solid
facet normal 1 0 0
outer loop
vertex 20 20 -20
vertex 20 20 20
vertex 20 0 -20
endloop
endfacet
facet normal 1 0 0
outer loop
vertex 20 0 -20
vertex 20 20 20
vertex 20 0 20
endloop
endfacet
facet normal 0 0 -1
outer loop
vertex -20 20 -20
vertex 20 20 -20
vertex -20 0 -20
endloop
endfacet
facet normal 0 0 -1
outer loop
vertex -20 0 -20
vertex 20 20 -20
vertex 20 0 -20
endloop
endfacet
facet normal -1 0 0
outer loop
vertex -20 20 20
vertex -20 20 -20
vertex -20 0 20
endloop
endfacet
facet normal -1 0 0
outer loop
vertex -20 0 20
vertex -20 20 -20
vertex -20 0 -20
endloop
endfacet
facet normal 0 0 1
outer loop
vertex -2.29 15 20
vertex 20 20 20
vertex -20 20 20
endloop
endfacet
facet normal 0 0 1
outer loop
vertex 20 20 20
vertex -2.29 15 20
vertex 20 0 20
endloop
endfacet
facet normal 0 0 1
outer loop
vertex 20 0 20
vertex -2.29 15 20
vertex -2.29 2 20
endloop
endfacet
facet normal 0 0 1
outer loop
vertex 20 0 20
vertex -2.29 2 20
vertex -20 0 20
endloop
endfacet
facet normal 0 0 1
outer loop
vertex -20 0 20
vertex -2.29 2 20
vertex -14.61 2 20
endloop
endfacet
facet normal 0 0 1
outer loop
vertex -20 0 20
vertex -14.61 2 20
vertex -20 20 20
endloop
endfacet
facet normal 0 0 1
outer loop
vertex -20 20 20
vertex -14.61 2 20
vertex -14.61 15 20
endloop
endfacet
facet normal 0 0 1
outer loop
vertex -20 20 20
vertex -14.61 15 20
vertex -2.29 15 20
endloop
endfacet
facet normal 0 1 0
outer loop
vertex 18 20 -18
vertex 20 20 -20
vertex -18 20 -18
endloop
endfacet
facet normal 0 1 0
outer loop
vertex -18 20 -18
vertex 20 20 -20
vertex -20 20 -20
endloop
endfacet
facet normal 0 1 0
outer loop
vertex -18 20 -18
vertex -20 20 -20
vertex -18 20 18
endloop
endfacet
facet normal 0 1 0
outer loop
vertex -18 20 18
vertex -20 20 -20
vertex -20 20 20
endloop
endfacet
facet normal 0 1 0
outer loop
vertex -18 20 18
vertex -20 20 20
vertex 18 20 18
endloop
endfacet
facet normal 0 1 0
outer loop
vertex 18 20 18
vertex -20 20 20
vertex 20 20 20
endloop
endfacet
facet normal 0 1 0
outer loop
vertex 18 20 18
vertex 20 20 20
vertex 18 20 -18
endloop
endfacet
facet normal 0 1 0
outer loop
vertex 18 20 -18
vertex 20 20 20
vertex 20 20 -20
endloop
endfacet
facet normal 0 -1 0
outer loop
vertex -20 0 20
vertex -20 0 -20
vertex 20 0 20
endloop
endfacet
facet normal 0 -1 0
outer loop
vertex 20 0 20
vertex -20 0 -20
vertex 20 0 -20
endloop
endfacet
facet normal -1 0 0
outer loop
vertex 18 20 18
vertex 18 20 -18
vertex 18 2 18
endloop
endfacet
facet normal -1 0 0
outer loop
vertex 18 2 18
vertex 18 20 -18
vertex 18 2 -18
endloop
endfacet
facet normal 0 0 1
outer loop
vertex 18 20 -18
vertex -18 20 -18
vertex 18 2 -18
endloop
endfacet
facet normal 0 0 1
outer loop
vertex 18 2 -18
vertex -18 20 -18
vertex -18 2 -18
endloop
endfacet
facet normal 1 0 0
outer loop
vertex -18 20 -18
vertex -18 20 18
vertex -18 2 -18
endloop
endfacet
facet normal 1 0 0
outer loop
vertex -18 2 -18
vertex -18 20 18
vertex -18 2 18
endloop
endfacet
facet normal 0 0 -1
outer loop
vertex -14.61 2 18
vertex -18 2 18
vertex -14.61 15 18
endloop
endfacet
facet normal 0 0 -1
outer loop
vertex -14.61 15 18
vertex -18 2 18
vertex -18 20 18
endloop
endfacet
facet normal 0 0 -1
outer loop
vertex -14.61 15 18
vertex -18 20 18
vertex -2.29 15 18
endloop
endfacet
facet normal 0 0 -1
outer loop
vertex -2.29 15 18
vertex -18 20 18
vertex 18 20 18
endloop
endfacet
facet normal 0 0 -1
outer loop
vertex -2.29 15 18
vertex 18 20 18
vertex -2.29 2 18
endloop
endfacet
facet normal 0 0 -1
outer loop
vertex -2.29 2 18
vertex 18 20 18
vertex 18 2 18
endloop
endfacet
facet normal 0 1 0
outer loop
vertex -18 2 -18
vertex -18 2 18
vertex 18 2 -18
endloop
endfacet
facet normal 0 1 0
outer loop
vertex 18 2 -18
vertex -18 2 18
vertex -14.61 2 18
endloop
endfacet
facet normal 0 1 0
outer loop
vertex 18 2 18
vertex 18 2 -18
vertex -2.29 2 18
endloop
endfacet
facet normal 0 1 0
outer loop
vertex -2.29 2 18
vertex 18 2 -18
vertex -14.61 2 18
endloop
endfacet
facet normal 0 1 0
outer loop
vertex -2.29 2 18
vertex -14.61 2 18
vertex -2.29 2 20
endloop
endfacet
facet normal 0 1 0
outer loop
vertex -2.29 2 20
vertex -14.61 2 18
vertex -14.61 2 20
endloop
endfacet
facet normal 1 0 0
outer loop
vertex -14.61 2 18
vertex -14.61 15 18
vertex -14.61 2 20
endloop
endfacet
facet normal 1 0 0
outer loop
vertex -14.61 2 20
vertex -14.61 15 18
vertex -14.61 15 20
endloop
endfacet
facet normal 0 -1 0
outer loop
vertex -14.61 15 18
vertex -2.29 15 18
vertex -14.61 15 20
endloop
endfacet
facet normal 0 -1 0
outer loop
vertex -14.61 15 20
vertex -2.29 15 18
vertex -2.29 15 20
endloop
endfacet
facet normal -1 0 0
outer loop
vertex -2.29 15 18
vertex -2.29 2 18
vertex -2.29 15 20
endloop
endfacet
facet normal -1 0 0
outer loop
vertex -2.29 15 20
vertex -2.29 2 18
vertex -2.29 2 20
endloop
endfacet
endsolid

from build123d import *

# Parameters (mm, degrees)
SKETCH4_W           = 40
SKETCH4_H           = 40
BOSS_EXTRUDE3_DEPTH = 20
SHELL7_T            = -2
SKETCH5_W           = 12.32
SKETCH5_H           = 13
CUT_EXTRUDE1_DEPTH  = 2


with BuildPart() as part:
    # Sketch4 → Boss-Extrude3 (new body)
    with BuildSketch(Plane(origin=(0, 0, 0), x_dir=(1, 0, 0), z_dir=(0, 1, 0))):
        Rectangle(SKETCH4_W, SKETCH4_H)
    extrude(amount=BOSS_EXTRUDE3_DEPTH)

    # Shell7
    shell7_openings = [part.faces().sort_by_distance(p)[0] for p in [
        (0, 20, 0),
    ]]
    offset(amount=SHELL7_T, openings=shell7_openings, kind=Kind.INTERSECTION)

    # Sketch5 → Cut-Extrude1 (cut)
    with BuildSketch(Plane.XY.offset(20)):
        with Locations((-8.449687556, 8.5)):
            Rectangle(SKETCH5_W, SKETCH5_H)
    extrude(amount=-CUT_EXTRUDE1_DEPTH, mode=Mode.SUBTRACT)


solid = part.part
